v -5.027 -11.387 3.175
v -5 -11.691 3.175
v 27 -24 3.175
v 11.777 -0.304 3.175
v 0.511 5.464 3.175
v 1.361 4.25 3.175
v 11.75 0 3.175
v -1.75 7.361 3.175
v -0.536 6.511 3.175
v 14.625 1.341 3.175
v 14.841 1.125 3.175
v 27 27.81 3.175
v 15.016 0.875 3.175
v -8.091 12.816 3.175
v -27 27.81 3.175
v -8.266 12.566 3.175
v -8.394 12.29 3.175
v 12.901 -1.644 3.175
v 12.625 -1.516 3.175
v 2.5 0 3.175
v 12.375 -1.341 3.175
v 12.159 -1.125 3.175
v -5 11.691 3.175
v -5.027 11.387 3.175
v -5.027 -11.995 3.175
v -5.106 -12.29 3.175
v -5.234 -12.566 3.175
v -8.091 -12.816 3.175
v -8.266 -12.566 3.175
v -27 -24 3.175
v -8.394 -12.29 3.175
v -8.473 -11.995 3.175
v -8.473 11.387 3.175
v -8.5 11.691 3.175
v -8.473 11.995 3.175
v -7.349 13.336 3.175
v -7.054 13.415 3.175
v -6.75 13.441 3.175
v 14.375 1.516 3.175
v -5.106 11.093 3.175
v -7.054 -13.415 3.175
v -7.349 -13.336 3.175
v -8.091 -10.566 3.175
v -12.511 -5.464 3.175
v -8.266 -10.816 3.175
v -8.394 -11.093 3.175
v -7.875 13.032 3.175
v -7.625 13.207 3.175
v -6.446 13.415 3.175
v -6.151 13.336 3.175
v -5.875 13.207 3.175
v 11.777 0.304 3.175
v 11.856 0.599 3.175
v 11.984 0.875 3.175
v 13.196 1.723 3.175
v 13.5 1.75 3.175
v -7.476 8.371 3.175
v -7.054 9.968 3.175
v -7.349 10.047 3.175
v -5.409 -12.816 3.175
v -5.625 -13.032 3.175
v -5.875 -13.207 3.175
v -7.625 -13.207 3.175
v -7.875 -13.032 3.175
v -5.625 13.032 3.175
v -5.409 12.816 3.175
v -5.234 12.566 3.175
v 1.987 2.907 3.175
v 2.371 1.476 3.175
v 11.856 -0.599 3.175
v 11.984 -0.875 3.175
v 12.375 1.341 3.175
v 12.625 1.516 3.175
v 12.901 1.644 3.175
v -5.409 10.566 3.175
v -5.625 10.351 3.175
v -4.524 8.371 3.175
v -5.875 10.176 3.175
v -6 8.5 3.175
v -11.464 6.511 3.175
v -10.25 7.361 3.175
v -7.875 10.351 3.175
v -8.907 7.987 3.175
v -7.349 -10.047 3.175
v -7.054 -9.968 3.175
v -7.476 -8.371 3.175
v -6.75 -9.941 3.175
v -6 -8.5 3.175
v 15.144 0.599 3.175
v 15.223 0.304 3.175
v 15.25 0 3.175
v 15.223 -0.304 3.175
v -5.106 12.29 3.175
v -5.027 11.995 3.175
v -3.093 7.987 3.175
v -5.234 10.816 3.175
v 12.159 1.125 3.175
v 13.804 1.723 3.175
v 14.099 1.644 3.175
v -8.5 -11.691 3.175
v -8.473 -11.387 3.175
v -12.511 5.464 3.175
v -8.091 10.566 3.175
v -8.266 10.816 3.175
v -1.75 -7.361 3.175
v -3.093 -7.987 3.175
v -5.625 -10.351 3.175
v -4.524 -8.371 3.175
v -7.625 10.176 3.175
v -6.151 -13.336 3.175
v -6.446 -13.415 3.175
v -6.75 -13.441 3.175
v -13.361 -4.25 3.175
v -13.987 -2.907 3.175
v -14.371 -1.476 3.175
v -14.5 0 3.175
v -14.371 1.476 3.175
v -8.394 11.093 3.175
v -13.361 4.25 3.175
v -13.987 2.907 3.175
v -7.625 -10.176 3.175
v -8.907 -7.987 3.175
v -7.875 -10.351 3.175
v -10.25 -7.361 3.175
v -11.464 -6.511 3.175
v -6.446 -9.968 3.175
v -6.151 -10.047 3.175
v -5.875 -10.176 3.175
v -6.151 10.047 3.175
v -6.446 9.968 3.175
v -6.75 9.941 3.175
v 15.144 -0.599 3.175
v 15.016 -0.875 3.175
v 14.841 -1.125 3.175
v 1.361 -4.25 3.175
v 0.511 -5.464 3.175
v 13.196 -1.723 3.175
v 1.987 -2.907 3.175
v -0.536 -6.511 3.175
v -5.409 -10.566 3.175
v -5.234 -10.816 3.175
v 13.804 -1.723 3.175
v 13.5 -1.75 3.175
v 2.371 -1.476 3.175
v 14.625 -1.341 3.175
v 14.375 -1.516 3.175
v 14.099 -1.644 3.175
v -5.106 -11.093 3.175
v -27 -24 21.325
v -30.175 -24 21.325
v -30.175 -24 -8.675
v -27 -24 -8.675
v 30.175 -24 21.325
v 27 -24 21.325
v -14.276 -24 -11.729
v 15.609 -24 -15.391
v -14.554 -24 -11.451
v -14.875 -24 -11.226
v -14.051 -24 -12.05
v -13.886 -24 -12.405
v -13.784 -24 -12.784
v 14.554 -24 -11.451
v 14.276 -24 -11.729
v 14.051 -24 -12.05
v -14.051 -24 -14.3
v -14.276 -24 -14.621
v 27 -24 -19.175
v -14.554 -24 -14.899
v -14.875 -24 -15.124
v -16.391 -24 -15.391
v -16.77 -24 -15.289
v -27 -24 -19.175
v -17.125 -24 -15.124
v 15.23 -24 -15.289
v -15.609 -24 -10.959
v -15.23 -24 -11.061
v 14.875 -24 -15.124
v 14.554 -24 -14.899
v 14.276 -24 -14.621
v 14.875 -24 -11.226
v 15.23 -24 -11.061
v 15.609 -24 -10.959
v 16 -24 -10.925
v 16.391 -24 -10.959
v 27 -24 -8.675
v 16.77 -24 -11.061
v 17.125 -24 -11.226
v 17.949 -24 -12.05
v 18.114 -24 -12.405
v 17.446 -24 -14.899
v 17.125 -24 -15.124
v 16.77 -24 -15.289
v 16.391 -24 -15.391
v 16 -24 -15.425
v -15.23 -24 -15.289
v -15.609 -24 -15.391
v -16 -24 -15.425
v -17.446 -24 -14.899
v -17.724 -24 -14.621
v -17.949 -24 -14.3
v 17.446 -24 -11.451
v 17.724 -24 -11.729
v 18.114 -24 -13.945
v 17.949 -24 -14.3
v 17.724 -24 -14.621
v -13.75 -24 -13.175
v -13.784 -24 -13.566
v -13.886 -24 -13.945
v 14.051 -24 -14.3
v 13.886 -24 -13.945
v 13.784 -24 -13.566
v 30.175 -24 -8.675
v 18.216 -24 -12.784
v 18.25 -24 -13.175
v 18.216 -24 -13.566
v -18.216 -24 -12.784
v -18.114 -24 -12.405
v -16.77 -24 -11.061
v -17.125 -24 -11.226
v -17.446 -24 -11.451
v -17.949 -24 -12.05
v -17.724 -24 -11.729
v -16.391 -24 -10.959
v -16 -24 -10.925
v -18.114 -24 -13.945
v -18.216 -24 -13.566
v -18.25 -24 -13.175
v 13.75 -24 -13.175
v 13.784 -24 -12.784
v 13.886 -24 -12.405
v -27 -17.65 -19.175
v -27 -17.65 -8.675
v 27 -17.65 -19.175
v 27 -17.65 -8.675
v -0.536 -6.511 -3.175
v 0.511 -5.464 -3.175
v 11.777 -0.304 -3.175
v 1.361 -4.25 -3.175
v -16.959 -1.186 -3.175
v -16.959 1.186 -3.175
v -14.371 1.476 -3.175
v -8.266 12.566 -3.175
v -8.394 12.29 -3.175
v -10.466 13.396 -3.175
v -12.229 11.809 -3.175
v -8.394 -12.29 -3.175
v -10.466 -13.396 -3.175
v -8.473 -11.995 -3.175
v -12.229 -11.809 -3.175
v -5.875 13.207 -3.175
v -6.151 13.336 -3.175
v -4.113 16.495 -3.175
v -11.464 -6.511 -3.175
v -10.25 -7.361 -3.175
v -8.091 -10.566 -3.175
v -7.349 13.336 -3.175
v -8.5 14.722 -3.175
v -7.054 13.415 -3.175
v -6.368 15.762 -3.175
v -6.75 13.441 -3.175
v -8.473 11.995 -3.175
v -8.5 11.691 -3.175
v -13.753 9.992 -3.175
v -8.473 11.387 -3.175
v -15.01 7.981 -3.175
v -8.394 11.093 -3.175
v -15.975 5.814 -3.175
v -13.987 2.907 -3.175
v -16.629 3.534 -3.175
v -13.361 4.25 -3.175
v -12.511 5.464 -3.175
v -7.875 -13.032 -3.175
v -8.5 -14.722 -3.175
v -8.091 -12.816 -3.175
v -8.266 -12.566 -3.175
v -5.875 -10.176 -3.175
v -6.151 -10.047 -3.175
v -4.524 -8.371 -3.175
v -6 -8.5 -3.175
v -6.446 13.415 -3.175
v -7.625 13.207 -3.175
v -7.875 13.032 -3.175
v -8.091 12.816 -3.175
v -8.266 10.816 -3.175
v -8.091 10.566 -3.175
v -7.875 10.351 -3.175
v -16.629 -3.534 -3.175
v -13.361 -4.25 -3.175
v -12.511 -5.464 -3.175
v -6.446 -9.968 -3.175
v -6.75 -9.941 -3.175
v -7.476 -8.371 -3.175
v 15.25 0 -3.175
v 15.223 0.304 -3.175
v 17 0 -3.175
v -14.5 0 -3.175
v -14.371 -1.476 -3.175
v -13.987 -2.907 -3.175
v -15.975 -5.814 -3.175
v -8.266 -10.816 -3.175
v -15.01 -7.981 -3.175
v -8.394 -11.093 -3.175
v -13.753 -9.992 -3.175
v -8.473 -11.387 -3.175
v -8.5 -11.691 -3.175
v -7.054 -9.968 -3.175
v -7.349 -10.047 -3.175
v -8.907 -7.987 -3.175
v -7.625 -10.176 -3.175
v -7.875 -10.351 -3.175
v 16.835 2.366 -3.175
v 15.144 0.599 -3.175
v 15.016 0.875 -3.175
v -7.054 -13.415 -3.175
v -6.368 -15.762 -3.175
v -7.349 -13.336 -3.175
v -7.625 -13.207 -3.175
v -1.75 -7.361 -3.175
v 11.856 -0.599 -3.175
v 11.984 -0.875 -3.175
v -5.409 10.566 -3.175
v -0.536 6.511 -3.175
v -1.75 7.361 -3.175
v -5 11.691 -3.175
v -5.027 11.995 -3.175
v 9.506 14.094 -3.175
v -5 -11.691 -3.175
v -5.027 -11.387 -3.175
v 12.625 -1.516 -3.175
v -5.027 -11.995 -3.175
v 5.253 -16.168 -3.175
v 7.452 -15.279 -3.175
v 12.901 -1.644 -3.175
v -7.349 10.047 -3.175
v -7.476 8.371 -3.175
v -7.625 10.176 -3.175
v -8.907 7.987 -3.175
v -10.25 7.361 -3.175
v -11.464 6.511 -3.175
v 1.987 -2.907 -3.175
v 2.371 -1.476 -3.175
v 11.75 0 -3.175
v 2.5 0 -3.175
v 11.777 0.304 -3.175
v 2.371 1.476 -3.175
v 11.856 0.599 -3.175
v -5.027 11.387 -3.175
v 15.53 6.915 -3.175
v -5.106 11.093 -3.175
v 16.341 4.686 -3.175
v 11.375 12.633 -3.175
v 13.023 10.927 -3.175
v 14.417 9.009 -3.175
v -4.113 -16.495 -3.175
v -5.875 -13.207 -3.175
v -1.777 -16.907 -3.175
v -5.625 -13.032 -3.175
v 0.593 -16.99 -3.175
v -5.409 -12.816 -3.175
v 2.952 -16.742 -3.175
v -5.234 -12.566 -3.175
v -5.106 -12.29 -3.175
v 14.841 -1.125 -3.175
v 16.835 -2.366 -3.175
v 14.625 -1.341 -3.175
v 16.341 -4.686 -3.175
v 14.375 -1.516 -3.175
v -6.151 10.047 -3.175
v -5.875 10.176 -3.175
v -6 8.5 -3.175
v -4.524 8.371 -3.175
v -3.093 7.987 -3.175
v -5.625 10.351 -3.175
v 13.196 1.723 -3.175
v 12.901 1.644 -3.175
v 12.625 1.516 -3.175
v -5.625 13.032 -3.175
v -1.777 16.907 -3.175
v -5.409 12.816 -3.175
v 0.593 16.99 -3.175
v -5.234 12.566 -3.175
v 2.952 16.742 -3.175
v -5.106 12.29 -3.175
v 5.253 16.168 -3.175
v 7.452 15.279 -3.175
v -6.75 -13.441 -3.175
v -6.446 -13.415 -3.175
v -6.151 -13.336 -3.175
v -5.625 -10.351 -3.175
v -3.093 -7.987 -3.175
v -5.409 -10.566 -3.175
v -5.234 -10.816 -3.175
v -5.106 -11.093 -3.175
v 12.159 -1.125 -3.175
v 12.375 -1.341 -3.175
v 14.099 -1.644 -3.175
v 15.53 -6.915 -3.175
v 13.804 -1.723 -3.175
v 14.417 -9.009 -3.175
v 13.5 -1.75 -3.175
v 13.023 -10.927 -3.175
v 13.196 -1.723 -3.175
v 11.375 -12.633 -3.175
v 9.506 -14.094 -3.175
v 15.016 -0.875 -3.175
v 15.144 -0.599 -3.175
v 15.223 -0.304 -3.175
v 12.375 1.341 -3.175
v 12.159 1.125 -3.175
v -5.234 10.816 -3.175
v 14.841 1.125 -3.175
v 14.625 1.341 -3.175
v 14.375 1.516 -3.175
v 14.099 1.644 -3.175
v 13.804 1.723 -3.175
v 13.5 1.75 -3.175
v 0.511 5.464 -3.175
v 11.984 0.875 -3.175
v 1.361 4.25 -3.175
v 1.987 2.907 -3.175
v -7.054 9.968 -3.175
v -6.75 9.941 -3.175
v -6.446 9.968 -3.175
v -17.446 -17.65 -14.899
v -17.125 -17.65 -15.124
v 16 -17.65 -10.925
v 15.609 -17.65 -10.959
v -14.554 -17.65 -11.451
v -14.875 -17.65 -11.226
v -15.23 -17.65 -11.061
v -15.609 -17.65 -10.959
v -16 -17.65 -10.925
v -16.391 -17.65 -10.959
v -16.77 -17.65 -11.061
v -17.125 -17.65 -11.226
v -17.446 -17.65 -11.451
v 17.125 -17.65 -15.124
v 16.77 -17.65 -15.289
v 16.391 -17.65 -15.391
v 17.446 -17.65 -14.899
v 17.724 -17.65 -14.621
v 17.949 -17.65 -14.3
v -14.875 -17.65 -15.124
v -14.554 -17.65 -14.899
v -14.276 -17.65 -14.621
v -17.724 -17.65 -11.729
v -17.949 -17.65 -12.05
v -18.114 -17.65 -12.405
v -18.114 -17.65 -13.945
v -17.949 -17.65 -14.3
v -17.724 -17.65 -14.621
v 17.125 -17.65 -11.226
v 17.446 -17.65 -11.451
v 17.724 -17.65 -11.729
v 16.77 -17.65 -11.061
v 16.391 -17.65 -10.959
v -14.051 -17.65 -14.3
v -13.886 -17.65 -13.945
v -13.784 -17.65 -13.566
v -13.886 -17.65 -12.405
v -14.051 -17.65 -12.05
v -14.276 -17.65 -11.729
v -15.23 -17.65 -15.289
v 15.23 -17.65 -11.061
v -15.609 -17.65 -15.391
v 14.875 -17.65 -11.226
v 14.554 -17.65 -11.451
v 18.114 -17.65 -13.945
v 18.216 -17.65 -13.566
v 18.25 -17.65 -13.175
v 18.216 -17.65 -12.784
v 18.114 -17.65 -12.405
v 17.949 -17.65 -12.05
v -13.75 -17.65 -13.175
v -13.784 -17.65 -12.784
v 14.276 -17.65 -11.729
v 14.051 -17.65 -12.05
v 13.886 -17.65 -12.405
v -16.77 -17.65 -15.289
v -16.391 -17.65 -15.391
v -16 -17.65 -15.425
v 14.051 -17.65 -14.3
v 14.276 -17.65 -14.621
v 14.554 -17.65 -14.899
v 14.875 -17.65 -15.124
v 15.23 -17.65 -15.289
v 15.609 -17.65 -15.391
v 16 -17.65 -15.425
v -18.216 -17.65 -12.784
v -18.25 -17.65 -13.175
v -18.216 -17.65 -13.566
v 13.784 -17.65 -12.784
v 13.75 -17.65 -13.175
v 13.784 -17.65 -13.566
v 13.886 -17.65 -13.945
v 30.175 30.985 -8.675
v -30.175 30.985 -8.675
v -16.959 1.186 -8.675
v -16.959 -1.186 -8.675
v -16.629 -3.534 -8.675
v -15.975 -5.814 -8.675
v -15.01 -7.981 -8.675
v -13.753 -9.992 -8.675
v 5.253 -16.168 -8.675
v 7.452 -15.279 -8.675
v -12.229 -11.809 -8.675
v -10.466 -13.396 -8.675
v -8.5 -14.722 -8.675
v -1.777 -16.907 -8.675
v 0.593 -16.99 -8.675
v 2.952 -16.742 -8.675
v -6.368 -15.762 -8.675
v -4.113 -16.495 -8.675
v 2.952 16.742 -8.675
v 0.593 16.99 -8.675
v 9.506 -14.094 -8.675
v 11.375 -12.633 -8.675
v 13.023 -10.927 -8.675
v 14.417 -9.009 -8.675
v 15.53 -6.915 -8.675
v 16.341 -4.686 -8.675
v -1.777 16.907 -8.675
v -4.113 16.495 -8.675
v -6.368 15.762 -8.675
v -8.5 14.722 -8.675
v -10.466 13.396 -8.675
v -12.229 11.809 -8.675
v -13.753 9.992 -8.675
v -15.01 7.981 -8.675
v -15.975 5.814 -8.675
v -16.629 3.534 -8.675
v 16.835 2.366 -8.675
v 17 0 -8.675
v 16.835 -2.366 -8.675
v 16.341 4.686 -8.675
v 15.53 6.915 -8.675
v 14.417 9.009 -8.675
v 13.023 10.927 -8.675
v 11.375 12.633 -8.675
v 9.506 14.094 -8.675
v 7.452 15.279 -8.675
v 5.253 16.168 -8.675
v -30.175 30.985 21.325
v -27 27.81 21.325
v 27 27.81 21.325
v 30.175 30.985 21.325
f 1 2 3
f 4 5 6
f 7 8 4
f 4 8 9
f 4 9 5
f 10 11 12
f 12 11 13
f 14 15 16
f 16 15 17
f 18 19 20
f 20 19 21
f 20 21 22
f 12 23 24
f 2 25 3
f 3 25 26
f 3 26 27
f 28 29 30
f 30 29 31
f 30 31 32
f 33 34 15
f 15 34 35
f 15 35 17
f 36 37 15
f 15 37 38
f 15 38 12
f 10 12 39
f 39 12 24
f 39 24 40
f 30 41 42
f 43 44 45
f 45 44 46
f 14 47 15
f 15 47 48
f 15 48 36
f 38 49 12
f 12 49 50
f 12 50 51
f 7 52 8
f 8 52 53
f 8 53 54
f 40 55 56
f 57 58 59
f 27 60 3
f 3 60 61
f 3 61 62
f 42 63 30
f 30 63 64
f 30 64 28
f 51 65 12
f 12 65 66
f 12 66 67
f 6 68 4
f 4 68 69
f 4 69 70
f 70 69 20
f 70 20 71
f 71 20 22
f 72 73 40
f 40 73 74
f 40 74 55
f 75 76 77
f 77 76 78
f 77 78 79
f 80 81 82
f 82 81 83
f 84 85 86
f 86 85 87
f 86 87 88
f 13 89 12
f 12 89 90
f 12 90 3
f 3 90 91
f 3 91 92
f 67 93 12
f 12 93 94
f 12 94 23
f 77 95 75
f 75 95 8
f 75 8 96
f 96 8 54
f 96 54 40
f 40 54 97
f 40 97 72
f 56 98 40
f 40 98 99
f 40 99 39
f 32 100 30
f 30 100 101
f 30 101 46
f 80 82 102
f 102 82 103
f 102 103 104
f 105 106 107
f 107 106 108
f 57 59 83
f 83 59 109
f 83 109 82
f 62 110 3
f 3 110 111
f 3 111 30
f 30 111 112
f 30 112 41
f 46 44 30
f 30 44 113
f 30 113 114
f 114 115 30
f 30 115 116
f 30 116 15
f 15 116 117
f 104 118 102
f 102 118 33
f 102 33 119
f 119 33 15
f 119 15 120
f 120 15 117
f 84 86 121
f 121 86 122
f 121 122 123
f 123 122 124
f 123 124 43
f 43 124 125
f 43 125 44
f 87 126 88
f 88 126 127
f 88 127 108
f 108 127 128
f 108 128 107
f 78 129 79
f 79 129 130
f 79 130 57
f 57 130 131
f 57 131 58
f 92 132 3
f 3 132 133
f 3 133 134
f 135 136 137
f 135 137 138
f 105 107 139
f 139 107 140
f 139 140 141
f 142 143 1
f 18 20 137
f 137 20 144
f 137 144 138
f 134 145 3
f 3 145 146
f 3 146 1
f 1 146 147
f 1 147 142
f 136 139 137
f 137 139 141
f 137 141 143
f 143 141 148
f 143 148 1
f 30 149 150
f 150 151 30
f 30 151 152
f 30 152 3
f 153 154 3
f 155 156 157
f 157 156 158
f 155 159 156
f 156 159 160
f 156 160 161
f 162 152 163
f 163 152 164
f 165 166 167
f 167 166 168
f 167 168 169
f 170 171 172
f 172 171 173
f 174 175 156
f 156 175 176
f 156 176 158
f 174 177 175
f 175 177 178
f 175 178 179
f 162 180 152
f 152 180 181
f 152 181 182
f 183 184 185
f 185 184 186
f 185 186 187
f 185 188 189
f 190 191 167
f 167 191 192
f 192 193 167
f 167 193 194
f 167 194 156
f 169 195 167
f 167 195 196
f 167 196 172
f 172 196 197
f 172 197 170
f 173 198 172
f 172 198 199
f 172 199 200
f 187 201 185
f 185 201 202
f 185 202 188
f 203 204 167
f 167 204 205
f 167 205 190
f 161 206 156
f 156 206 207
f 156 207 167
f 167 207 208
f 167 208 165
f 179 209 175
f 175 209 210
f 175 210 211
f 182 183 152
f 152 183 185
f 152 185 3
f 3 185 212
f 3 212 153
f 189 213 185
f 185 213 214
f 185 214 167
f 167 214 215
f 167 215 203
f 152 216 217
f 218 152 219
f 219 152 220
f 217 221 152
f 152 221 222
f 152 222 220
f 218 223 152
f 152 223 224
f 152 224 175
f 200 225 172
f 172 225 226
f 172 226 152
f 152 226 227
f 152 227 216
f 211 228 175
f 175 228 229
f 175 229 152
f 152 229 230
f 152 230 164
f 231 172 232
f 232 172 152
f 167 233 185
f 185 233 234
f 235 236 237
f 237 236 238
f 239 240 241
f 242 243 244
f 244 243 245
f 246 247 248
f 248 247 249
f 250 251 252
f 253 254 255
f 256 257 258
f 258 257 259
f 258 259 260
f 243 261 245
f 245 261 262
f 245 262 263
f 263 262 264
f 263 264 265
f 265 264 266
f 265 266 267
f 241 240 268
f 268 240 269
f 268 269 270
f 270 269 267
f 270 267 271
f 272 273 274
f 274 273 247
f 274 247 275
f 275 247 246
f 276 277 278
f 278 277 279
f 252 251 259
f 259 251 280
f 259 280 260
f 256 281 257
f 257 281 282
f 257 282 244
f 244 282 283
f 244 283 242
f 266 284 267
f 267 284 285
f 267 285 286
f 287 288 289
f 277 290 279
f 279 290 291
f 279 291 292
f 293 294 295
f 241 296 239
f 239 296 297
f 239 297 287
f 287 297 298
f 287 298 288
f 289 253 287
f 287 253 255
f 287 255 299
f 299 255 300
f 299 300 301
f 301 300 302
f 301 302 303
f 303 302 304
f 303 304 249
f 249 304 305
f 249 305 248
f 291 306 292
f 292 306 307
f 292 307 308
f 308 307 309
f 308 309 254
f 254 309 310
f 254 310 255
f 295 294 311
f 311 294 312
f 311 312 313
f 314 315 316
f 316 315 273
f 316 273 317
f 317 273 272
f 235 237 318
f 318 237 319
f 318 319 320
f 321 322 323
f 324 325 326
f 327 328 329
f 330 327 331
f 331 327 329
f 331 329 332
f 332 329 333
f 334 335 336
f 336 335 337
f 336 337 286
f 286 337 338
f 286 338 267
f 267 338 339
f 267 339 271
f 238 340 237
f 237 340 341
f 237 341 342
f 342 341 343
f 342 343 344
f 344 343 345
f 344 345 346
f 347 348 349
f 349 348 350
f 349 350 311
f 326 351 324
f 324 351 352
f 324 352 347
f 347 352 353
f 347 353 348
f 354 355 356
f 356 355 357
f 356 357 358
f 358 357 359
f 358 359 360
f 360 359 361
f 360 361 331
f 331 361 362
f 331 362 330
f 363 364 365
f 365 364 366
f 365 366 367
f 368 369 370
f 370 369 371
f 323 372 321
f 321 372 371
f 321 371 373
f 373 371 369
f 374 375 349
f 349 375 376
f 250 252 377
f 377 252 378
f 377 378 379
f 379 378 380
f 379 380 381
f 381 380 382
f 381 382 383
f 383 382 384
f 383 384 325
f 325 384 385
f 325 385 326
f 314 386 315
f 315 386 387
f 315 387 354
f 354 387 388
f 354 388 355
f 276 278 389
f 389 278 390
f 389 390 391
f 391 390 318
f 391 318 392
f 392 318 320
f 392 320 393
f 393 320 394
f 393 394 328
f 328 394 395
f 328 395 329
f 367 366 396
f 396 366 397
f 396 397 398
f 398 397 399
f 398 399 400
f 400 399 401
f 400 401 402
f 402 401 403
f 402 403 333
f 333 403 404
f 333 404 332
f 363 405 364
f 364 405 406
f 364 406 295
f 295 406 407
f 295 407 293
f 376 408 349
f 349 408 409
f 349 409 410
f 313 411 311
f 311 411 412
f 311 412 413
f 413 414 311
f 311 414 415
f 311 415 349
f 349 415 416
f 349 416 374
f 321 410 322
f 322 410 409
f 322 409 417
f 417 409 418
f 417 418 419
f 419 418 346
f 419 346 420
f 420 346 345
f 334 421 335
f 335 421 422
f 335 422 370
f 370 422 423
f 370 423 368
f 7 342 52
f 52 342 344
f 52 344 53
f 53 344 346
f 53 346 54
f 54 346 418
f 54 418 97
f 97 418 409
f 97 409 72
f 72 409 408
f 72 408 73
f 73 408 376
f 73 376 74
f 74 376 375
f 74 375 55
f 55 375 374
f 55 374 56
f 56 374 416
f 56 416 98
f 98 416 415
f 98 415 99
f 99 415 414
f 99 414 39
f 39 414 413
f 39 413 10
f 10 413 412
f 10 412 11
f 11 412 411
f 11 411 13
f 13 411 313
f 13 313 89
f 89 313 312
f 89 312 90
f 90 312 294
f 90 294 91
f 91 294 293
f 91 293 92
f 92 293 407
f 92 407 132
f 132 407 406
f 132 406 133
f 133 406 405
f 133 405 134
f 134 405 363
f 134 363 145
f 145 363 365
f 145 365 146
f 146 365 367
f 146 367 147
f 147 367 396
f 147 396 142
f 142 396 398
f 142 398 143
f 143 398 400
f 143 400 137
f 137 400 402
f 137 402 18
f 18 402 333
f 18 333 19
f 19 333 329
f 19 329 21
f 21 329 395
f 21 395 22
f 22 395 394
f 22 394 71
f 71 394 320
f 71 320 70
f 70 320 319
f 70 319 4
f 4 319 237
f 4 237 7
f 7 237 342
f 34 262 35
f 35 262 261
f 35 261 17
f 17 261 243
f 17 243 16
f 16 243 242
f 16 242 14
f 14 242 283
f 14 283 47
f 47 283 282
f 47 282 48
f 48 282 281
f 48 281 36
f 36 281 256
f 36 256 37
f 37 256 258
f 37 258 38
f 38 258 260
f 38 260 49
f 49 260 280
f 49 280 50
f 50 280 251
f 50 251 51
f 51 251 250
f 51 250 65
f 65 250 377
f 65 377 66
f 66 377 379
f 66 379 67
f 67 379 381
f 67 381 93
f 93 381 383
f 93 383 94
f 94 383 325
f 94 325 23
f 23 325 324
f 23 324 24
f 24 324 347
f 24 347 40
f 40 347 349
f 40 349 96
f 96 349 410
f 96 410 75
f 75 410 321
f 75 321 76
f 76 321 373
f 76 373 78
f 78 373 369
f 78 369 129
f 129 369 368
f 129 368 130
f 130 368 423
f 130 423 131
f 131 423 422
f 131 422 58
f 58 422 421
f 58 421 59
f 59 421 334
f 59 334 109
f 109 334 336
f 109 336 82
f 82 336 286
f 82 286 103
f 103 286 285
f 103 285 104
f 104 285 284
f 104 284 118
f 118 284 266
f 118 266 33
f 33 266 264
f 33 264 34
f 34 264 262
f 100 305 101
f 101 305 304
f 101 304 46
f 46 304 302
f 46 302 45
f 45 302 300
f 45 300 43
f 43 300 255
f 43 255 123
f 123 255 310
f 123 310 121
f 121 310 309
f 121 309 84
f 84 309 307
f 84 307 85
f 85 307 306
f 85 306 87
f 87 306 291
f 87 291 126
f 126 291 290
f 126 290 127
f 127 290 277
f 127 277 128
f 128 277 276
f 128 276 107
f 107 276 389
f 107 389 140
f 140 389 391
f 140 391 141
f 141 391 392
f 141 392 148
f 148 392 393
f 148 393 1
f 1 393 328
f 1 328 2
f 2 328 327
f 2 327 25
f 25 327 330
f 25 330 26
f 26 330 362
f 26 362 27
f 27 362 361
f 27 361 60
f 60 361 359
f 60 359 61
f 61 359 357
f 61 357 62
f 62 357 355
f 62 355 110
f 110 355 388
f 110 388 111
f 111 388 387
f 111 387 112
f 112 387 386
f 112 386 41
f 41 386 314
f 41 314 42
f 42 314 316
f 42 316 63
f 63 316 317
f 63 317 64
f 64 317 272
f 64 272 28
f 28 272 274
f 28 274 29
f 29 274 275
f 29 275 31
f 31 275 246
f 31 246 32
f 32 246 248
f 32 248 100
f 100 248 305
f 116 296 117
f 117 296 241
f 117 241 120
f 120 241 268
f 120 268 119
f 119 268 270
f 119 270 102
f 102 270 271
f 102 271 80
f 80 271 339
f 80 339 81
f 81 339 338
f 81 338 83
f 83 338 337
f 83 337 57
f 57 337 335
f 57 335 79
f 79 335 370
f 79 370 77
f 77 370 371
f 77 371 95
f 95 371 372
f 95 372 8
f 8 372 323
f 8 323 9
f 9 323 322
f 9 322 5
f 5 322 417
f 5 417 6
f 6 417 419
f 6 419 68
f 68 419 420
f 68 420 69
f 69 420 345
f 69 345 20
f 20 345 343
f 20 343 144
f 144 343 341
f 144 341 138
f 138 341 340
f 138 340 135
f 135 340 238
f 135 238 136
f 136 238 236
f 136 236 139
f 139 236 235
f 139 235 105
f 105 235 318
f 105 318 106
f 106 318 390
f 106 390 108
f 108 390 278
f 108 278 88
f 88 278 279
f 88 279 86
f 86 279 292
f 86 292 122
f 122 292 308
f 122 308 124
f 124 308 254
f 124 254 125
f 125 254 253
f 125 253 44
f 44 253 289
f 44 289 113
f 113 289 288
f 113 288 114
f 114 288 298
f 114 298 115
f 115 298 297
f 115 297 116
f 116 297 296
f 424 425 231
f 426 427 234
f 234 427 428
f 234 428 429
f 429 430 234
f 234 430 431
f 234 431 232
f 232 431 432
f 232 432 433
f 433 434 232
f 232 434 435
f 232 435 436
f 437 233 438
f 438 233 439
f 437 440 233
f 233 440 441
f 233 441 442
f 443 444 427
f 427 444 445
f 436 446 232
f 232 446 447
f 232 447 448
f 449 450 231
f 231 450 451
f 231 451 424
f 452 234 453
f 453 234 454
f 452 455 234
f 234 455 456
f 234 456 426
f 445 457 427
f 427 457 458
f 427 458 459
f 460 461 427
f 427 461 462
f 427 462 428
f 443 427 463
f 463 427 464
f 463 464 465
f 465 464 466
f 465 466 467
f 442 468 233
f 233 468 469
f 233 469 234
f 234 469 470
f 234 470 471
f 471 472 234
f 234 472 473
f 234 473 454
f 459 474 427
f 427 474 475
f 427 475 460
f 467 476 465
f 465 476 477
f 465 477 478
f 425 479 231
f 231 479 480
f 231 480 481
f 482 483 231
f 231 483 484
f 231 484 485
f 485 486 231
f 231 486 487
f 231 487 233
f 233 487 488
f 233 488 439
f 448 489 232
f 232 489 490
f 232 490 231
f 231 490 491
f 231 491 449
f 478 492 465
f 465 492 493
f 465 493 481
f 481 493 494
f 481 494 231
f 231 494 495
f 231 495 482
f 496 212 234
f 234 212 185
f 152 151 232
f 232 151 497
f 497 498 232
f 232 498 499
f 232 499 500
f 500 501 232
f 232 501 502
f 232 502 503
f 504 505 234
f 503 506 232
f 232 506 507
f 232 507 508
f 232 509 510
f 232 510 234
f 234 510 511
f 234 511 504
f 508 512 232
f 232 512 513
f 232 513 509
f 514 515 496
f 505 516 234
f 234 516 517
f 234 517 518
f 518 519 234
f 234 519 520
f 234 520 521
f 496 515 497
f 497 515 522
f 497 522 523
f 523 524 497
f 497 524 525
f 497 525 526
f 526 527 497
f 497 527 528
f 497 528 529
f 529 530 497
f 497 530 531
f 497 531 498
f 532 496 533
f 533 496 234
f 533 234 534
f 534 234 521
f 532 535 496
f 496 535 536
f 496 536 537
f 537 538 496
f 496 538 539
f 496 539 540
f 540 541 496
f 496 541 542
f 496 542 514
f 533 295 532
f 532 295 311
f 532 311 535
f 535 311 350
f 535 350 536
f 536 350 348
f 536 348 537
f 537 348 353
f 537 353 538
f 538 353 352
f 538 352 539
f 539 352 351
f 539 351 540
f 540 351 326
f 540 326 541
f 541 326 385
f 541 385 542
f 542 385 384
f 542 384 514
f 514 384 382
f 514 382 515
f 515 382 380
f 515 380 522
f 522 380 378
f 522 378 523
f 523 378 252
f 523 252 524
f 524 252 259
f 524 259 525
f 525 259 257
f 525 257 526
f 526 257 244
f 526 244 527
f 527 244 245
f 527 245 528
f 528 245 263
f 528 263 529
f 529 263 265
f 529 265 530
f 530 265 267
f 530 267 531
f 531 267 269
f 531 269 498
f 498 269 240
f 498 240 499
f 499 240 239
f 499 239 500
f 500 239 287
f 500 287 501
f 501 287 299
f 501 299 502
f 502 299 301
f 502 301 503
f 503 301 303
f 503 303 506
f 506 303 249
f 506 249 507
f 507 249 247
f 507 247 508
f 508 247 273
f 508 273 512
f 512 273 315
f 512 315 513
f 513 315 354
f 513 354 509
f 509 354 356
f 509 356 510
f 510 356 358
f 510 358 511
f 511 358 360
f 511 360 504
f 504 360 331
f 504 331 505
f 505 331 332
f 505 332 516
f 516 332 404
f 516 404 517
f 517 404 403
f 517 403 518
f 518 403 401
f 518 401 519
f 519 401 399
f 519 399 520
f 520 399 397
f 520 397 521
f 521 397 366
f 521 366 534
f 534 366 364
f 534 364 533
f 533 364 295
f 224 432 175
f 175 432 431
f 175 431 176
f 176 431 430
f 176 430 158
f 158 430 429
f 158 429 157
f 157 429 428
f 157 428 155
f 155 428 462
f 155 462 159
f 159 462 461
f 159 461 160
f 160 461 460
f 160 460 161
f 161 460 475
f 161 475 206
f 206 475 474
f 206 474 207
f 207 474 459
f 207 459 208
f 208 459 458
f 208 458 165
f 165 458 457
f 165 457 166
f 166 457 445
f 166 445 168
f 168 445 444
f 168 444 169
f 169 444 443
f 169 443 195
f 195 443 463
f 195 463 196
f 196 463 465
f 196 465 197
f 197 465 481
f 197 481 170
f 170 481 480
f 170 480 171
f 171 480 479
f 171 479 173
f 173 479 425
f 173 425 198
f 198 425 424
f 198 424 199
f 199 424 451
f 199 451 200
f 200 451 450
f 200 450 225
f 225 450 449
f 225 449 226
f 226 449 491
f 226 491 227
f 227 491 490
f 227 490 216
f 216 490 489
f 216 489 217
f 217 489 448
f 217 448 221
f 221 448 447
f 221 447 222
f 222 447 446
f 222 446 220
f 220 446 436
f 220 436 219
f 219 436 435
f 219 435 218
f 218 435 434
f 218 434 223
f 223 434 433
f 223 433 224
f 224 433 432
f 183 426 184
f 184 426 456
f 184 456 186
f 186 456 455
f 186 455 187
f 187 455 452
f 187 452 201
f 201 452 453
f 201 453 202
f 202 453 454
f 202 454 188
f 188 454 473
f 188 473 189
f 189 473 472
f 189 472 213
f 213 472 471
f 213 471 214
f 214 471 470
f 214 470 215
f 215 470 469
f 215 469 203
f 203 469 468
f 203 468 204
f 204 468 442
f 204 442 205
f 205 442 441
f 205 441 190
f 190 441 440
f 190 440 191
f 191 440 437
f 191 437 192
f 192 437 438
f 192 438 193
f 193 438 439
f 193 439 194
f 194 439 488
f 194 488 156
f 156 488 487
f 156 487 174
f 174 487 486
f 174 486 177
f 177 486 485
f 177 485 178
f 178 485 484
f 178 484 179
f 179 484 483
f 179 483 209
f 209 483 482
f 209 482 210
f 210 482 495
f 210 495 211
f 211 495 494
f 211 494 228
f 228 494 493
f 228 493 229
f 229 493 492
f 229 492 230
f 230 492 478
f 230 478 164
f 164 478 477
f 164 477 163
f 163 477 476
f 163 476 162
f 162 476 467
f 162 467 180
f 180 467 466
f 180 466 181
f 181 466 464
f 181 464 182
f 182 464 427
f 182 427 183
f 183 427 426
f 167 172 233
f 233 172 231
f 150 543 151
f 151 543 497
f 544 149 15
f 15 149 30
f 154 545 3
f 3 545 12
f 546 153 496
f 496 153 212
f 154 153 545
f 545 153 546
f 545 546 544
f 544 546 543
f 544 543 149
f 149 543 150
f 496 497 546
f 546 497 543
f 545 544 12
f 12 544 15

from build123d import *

# Parameters (mm, degrees)
SKETCH1_W            = 48
SKETCH1_H            = 48
SKETCH1_R            = 1.75
SKETCH1_R_2          = 8.5
BOSS_EXTRUDE2_DEPTH  = 3.175
SKETCH2_W            = 14
SKETCH2_H            = 6.35
BOSS_EXTRUDE3_DEPTH  = 48
SKETCH3_W            = 48
SKETCH3_H            = 48
SKETCH3_R            = 17
BOSS_EXTRUDE4_DEPTH  = 5.499999938
M4_CLEARANCE_HOLE1_D = 4.5
SKETCH7_W            = 48
SKETCH7_H            = 6.35
BOSS_EXTRUDE5_DEPTH  = 2
BOSS_EXTRUDE6_DEPTH  = 3
SKETCH12_W           = 54
SKETCH12_H           = 48
CUT_EXTRUDE4_DEPTH   = 16
SKETCH15_W           = 3.175
SKETCH15_H           = 41.65
SKETCH15_H_2         = 3.175
SKETCH15_W_2         = 54
BOSS_EXTRUDE8_DEPTH  = 30
SKETCH16_W           = 54
SKETCH16_H           = 3.175
CUT_EXTRUDE5_DEPTH   = 45.565155952
SKETCH17_W           = 60.35
SKETCH17_H           = 30
BOSS_EXTRUDE9_DEPTH  = 10.16
SKETCH18_W           = 54
SKETCH18_H           = 10.16
CUT_EXTRUDE6_DEPTH   = 18.150000062


with BuildPart() as part:
    # Sketch1 → Boss-Extrude2 (new, symmetric)
    with BuildSketch(Plane.XY):
        Rectangle(SKETCH1_W, SKETCH1_H)
        with Locations((13.5, 0)):
            Circle(SKETCH1_R, mode=Mode.SUBTRACT)
        with Locations((-6.75, 11.691342951)):
            Circle(SKETCH1_R, mode=Mode.SUBTRACT)
        with Locations((-6.75, -11.691342951)):
            Circle(SKETCH1_R, mode=Mode.SUBTRACT)
        with Locations((-6, 0)):
            Circle(SKETCH1_R_2, mode=Mode.SUBTRACT)
    extrude(amount=BOSS_EXTRUDE2_DEPTH, both=True)

    # Sketch2 → Boss-Extrude3 (add)
    with BuildSketch(Plane(origin=(24, 0, 0), x_dir=(0, 0, -1), z_dir=(1, 0, 0))):
        with Locations((10.175, -20.825)):
            Rectangle(SKETCH2_W, SKETCH2_H)
    boss_extrude3 = extrude(amount=-BOSS_EXTRUDE3_DEPTH)

    # Sketch3 → Boss-Extrude4 (add)
    with BuildSketch(Plane.XY.offset(3.175)):
        Rectangle(SKETCH3_W, SKETCH3_H)
        Circle(SKETCH3_R, mode=Mode.SUBTRACT)
    boss_extrude4 = extrude(amount=BOSS_EXTRUDE4_DEPTH)

    # Mirror1: Boss-Extrude3, Boss-Extrude4 across plane
    add(boss_extrude3.mirror(Plane.XY))
    add(boss_extrude4.mirror(Plane.XY))

    # M4 Clearance Hole1 (through all)
    with Locations(Plane(origin=(0, -17.65, 0), x_dir=(1, 0, 0), z_dir=(0, 1, 0))):
        with Locations((-16, -13.175), (16, -13.175), (16, 13.175), (-16, 13.175)):
            Hole(M4_CLEARANCE_HOLE1_D / 2)

    # Sketch7 → Boss-Extrude5 (add)
    with BuildSketch(Plane.XY.offset(17.175)):
        with Locations((0, -20.825)):
            Rectangle(SKETCH7_W, SKETCH7_H)
    boss_extrude5 = extrude(amount=BOSS_EXTRUDE5_DEPTH)

    # Mirror2: Boss-Extrude5 across plane
    add(boss_extrude5.mirror(Plane.XY))

    # Sketch8 → Boss-Extrude6 (add)
    with BuildSketch(Plane.ZY.offset(24)):
        Polygon((-19.175, -17.65), (-19.175, -24), (19.175, -24), (19.175, -17.65), (8.674999938, -17.65), (8.674999938, 24), (-8.674999938, 24), (-8.674999938, -17.65), align=None)
    boss_extrude6 = extrude(amount=BOSS_EXTRUDE6_DEPTH)

    # Mirror3: Boss-Extrude6 across plane
    add(boss_extrude6.mirror(Plane(origin=(0, 0, 0), x_dir=(0, 0, 1), z_dir=(1, 0, 0))))

    # Sketch12 → Cut-Extrude4 (cut)
    with BuildSketch(Plane.XY.offset(19.175)):
        Rectangle(SKETCH12_W, SKETCH12_H)
    extrude(amount=-CUT_EXTRUDE4_DEPTH, mode=Mode.SUBTRACT)

    # Sketch15 → Boss-Extrude8 (add)
    with BuildSketch(Plane(origin=(0, 0, -8.674999938), x_dir=(-1, 0, 0), z_dir=(0, 0, -1))):
        Polygon((27, -24), (30.175, -24), (30.175, 17.65), (27, 17.65), (27, -17.65), align=None)
        with Locations((-28.5875, -3.175)):
            Rectangle(SKETCH15_W, SKETCH15_H)
        with Locations((-28.5875, 19.2375)):
            Rectangle(SKETCH15_W, SKETCH15_H_2)
        with Locations((0, 19.2375)):
            Rectangle(SKETCH15_W_2, SKETCH15_H_2)
        with Locations((28.5875, 19.2375)):
            Rectangle(SKETCH15_W, SKETCH15_H_2)
    extrude(amount=-BOSS_EXTRUDE8_DEPTH)

    # Sketch16 → Cut-Extrude5 (cut, through all)
    with BuildSketch(Plane.XY.offset(3.175)):
        with Locations((0, 22.4125)):
            Rectangle(SKETCH16_W, SKETCH16_H)
    extrude(amount=-CUT_EXTRUDE5_DEPTH, mode=Mode.SUBTRACT)

    # Sketch17 → Boss-Extrude9 (add)
    with BuildSketch(Plane(origin=(0, 20.825, 0), x_dir=(1, 0, 0), z_dir=(0, 1, 0))):
        with Locations((0, -6.325000062)):
            Rectangle(SKETCH17_W, SKETCH17_H)
    extrude(amount=BOSS_EXTRUDE9_DEPTH)

    # Sketch18 → Cut-Extrude6 (cut)
    with BuildSketch(Plane.XY.offset(21.325000062)):
        with Locations((0, 22.73)):
            Rectangle(SKETCH18_W, SKETCH18_H)
    extrude(amount=-CUT_EXTRUDE6_DEPTH, mode=Mode.SUBTRACT)


solid = part.part
